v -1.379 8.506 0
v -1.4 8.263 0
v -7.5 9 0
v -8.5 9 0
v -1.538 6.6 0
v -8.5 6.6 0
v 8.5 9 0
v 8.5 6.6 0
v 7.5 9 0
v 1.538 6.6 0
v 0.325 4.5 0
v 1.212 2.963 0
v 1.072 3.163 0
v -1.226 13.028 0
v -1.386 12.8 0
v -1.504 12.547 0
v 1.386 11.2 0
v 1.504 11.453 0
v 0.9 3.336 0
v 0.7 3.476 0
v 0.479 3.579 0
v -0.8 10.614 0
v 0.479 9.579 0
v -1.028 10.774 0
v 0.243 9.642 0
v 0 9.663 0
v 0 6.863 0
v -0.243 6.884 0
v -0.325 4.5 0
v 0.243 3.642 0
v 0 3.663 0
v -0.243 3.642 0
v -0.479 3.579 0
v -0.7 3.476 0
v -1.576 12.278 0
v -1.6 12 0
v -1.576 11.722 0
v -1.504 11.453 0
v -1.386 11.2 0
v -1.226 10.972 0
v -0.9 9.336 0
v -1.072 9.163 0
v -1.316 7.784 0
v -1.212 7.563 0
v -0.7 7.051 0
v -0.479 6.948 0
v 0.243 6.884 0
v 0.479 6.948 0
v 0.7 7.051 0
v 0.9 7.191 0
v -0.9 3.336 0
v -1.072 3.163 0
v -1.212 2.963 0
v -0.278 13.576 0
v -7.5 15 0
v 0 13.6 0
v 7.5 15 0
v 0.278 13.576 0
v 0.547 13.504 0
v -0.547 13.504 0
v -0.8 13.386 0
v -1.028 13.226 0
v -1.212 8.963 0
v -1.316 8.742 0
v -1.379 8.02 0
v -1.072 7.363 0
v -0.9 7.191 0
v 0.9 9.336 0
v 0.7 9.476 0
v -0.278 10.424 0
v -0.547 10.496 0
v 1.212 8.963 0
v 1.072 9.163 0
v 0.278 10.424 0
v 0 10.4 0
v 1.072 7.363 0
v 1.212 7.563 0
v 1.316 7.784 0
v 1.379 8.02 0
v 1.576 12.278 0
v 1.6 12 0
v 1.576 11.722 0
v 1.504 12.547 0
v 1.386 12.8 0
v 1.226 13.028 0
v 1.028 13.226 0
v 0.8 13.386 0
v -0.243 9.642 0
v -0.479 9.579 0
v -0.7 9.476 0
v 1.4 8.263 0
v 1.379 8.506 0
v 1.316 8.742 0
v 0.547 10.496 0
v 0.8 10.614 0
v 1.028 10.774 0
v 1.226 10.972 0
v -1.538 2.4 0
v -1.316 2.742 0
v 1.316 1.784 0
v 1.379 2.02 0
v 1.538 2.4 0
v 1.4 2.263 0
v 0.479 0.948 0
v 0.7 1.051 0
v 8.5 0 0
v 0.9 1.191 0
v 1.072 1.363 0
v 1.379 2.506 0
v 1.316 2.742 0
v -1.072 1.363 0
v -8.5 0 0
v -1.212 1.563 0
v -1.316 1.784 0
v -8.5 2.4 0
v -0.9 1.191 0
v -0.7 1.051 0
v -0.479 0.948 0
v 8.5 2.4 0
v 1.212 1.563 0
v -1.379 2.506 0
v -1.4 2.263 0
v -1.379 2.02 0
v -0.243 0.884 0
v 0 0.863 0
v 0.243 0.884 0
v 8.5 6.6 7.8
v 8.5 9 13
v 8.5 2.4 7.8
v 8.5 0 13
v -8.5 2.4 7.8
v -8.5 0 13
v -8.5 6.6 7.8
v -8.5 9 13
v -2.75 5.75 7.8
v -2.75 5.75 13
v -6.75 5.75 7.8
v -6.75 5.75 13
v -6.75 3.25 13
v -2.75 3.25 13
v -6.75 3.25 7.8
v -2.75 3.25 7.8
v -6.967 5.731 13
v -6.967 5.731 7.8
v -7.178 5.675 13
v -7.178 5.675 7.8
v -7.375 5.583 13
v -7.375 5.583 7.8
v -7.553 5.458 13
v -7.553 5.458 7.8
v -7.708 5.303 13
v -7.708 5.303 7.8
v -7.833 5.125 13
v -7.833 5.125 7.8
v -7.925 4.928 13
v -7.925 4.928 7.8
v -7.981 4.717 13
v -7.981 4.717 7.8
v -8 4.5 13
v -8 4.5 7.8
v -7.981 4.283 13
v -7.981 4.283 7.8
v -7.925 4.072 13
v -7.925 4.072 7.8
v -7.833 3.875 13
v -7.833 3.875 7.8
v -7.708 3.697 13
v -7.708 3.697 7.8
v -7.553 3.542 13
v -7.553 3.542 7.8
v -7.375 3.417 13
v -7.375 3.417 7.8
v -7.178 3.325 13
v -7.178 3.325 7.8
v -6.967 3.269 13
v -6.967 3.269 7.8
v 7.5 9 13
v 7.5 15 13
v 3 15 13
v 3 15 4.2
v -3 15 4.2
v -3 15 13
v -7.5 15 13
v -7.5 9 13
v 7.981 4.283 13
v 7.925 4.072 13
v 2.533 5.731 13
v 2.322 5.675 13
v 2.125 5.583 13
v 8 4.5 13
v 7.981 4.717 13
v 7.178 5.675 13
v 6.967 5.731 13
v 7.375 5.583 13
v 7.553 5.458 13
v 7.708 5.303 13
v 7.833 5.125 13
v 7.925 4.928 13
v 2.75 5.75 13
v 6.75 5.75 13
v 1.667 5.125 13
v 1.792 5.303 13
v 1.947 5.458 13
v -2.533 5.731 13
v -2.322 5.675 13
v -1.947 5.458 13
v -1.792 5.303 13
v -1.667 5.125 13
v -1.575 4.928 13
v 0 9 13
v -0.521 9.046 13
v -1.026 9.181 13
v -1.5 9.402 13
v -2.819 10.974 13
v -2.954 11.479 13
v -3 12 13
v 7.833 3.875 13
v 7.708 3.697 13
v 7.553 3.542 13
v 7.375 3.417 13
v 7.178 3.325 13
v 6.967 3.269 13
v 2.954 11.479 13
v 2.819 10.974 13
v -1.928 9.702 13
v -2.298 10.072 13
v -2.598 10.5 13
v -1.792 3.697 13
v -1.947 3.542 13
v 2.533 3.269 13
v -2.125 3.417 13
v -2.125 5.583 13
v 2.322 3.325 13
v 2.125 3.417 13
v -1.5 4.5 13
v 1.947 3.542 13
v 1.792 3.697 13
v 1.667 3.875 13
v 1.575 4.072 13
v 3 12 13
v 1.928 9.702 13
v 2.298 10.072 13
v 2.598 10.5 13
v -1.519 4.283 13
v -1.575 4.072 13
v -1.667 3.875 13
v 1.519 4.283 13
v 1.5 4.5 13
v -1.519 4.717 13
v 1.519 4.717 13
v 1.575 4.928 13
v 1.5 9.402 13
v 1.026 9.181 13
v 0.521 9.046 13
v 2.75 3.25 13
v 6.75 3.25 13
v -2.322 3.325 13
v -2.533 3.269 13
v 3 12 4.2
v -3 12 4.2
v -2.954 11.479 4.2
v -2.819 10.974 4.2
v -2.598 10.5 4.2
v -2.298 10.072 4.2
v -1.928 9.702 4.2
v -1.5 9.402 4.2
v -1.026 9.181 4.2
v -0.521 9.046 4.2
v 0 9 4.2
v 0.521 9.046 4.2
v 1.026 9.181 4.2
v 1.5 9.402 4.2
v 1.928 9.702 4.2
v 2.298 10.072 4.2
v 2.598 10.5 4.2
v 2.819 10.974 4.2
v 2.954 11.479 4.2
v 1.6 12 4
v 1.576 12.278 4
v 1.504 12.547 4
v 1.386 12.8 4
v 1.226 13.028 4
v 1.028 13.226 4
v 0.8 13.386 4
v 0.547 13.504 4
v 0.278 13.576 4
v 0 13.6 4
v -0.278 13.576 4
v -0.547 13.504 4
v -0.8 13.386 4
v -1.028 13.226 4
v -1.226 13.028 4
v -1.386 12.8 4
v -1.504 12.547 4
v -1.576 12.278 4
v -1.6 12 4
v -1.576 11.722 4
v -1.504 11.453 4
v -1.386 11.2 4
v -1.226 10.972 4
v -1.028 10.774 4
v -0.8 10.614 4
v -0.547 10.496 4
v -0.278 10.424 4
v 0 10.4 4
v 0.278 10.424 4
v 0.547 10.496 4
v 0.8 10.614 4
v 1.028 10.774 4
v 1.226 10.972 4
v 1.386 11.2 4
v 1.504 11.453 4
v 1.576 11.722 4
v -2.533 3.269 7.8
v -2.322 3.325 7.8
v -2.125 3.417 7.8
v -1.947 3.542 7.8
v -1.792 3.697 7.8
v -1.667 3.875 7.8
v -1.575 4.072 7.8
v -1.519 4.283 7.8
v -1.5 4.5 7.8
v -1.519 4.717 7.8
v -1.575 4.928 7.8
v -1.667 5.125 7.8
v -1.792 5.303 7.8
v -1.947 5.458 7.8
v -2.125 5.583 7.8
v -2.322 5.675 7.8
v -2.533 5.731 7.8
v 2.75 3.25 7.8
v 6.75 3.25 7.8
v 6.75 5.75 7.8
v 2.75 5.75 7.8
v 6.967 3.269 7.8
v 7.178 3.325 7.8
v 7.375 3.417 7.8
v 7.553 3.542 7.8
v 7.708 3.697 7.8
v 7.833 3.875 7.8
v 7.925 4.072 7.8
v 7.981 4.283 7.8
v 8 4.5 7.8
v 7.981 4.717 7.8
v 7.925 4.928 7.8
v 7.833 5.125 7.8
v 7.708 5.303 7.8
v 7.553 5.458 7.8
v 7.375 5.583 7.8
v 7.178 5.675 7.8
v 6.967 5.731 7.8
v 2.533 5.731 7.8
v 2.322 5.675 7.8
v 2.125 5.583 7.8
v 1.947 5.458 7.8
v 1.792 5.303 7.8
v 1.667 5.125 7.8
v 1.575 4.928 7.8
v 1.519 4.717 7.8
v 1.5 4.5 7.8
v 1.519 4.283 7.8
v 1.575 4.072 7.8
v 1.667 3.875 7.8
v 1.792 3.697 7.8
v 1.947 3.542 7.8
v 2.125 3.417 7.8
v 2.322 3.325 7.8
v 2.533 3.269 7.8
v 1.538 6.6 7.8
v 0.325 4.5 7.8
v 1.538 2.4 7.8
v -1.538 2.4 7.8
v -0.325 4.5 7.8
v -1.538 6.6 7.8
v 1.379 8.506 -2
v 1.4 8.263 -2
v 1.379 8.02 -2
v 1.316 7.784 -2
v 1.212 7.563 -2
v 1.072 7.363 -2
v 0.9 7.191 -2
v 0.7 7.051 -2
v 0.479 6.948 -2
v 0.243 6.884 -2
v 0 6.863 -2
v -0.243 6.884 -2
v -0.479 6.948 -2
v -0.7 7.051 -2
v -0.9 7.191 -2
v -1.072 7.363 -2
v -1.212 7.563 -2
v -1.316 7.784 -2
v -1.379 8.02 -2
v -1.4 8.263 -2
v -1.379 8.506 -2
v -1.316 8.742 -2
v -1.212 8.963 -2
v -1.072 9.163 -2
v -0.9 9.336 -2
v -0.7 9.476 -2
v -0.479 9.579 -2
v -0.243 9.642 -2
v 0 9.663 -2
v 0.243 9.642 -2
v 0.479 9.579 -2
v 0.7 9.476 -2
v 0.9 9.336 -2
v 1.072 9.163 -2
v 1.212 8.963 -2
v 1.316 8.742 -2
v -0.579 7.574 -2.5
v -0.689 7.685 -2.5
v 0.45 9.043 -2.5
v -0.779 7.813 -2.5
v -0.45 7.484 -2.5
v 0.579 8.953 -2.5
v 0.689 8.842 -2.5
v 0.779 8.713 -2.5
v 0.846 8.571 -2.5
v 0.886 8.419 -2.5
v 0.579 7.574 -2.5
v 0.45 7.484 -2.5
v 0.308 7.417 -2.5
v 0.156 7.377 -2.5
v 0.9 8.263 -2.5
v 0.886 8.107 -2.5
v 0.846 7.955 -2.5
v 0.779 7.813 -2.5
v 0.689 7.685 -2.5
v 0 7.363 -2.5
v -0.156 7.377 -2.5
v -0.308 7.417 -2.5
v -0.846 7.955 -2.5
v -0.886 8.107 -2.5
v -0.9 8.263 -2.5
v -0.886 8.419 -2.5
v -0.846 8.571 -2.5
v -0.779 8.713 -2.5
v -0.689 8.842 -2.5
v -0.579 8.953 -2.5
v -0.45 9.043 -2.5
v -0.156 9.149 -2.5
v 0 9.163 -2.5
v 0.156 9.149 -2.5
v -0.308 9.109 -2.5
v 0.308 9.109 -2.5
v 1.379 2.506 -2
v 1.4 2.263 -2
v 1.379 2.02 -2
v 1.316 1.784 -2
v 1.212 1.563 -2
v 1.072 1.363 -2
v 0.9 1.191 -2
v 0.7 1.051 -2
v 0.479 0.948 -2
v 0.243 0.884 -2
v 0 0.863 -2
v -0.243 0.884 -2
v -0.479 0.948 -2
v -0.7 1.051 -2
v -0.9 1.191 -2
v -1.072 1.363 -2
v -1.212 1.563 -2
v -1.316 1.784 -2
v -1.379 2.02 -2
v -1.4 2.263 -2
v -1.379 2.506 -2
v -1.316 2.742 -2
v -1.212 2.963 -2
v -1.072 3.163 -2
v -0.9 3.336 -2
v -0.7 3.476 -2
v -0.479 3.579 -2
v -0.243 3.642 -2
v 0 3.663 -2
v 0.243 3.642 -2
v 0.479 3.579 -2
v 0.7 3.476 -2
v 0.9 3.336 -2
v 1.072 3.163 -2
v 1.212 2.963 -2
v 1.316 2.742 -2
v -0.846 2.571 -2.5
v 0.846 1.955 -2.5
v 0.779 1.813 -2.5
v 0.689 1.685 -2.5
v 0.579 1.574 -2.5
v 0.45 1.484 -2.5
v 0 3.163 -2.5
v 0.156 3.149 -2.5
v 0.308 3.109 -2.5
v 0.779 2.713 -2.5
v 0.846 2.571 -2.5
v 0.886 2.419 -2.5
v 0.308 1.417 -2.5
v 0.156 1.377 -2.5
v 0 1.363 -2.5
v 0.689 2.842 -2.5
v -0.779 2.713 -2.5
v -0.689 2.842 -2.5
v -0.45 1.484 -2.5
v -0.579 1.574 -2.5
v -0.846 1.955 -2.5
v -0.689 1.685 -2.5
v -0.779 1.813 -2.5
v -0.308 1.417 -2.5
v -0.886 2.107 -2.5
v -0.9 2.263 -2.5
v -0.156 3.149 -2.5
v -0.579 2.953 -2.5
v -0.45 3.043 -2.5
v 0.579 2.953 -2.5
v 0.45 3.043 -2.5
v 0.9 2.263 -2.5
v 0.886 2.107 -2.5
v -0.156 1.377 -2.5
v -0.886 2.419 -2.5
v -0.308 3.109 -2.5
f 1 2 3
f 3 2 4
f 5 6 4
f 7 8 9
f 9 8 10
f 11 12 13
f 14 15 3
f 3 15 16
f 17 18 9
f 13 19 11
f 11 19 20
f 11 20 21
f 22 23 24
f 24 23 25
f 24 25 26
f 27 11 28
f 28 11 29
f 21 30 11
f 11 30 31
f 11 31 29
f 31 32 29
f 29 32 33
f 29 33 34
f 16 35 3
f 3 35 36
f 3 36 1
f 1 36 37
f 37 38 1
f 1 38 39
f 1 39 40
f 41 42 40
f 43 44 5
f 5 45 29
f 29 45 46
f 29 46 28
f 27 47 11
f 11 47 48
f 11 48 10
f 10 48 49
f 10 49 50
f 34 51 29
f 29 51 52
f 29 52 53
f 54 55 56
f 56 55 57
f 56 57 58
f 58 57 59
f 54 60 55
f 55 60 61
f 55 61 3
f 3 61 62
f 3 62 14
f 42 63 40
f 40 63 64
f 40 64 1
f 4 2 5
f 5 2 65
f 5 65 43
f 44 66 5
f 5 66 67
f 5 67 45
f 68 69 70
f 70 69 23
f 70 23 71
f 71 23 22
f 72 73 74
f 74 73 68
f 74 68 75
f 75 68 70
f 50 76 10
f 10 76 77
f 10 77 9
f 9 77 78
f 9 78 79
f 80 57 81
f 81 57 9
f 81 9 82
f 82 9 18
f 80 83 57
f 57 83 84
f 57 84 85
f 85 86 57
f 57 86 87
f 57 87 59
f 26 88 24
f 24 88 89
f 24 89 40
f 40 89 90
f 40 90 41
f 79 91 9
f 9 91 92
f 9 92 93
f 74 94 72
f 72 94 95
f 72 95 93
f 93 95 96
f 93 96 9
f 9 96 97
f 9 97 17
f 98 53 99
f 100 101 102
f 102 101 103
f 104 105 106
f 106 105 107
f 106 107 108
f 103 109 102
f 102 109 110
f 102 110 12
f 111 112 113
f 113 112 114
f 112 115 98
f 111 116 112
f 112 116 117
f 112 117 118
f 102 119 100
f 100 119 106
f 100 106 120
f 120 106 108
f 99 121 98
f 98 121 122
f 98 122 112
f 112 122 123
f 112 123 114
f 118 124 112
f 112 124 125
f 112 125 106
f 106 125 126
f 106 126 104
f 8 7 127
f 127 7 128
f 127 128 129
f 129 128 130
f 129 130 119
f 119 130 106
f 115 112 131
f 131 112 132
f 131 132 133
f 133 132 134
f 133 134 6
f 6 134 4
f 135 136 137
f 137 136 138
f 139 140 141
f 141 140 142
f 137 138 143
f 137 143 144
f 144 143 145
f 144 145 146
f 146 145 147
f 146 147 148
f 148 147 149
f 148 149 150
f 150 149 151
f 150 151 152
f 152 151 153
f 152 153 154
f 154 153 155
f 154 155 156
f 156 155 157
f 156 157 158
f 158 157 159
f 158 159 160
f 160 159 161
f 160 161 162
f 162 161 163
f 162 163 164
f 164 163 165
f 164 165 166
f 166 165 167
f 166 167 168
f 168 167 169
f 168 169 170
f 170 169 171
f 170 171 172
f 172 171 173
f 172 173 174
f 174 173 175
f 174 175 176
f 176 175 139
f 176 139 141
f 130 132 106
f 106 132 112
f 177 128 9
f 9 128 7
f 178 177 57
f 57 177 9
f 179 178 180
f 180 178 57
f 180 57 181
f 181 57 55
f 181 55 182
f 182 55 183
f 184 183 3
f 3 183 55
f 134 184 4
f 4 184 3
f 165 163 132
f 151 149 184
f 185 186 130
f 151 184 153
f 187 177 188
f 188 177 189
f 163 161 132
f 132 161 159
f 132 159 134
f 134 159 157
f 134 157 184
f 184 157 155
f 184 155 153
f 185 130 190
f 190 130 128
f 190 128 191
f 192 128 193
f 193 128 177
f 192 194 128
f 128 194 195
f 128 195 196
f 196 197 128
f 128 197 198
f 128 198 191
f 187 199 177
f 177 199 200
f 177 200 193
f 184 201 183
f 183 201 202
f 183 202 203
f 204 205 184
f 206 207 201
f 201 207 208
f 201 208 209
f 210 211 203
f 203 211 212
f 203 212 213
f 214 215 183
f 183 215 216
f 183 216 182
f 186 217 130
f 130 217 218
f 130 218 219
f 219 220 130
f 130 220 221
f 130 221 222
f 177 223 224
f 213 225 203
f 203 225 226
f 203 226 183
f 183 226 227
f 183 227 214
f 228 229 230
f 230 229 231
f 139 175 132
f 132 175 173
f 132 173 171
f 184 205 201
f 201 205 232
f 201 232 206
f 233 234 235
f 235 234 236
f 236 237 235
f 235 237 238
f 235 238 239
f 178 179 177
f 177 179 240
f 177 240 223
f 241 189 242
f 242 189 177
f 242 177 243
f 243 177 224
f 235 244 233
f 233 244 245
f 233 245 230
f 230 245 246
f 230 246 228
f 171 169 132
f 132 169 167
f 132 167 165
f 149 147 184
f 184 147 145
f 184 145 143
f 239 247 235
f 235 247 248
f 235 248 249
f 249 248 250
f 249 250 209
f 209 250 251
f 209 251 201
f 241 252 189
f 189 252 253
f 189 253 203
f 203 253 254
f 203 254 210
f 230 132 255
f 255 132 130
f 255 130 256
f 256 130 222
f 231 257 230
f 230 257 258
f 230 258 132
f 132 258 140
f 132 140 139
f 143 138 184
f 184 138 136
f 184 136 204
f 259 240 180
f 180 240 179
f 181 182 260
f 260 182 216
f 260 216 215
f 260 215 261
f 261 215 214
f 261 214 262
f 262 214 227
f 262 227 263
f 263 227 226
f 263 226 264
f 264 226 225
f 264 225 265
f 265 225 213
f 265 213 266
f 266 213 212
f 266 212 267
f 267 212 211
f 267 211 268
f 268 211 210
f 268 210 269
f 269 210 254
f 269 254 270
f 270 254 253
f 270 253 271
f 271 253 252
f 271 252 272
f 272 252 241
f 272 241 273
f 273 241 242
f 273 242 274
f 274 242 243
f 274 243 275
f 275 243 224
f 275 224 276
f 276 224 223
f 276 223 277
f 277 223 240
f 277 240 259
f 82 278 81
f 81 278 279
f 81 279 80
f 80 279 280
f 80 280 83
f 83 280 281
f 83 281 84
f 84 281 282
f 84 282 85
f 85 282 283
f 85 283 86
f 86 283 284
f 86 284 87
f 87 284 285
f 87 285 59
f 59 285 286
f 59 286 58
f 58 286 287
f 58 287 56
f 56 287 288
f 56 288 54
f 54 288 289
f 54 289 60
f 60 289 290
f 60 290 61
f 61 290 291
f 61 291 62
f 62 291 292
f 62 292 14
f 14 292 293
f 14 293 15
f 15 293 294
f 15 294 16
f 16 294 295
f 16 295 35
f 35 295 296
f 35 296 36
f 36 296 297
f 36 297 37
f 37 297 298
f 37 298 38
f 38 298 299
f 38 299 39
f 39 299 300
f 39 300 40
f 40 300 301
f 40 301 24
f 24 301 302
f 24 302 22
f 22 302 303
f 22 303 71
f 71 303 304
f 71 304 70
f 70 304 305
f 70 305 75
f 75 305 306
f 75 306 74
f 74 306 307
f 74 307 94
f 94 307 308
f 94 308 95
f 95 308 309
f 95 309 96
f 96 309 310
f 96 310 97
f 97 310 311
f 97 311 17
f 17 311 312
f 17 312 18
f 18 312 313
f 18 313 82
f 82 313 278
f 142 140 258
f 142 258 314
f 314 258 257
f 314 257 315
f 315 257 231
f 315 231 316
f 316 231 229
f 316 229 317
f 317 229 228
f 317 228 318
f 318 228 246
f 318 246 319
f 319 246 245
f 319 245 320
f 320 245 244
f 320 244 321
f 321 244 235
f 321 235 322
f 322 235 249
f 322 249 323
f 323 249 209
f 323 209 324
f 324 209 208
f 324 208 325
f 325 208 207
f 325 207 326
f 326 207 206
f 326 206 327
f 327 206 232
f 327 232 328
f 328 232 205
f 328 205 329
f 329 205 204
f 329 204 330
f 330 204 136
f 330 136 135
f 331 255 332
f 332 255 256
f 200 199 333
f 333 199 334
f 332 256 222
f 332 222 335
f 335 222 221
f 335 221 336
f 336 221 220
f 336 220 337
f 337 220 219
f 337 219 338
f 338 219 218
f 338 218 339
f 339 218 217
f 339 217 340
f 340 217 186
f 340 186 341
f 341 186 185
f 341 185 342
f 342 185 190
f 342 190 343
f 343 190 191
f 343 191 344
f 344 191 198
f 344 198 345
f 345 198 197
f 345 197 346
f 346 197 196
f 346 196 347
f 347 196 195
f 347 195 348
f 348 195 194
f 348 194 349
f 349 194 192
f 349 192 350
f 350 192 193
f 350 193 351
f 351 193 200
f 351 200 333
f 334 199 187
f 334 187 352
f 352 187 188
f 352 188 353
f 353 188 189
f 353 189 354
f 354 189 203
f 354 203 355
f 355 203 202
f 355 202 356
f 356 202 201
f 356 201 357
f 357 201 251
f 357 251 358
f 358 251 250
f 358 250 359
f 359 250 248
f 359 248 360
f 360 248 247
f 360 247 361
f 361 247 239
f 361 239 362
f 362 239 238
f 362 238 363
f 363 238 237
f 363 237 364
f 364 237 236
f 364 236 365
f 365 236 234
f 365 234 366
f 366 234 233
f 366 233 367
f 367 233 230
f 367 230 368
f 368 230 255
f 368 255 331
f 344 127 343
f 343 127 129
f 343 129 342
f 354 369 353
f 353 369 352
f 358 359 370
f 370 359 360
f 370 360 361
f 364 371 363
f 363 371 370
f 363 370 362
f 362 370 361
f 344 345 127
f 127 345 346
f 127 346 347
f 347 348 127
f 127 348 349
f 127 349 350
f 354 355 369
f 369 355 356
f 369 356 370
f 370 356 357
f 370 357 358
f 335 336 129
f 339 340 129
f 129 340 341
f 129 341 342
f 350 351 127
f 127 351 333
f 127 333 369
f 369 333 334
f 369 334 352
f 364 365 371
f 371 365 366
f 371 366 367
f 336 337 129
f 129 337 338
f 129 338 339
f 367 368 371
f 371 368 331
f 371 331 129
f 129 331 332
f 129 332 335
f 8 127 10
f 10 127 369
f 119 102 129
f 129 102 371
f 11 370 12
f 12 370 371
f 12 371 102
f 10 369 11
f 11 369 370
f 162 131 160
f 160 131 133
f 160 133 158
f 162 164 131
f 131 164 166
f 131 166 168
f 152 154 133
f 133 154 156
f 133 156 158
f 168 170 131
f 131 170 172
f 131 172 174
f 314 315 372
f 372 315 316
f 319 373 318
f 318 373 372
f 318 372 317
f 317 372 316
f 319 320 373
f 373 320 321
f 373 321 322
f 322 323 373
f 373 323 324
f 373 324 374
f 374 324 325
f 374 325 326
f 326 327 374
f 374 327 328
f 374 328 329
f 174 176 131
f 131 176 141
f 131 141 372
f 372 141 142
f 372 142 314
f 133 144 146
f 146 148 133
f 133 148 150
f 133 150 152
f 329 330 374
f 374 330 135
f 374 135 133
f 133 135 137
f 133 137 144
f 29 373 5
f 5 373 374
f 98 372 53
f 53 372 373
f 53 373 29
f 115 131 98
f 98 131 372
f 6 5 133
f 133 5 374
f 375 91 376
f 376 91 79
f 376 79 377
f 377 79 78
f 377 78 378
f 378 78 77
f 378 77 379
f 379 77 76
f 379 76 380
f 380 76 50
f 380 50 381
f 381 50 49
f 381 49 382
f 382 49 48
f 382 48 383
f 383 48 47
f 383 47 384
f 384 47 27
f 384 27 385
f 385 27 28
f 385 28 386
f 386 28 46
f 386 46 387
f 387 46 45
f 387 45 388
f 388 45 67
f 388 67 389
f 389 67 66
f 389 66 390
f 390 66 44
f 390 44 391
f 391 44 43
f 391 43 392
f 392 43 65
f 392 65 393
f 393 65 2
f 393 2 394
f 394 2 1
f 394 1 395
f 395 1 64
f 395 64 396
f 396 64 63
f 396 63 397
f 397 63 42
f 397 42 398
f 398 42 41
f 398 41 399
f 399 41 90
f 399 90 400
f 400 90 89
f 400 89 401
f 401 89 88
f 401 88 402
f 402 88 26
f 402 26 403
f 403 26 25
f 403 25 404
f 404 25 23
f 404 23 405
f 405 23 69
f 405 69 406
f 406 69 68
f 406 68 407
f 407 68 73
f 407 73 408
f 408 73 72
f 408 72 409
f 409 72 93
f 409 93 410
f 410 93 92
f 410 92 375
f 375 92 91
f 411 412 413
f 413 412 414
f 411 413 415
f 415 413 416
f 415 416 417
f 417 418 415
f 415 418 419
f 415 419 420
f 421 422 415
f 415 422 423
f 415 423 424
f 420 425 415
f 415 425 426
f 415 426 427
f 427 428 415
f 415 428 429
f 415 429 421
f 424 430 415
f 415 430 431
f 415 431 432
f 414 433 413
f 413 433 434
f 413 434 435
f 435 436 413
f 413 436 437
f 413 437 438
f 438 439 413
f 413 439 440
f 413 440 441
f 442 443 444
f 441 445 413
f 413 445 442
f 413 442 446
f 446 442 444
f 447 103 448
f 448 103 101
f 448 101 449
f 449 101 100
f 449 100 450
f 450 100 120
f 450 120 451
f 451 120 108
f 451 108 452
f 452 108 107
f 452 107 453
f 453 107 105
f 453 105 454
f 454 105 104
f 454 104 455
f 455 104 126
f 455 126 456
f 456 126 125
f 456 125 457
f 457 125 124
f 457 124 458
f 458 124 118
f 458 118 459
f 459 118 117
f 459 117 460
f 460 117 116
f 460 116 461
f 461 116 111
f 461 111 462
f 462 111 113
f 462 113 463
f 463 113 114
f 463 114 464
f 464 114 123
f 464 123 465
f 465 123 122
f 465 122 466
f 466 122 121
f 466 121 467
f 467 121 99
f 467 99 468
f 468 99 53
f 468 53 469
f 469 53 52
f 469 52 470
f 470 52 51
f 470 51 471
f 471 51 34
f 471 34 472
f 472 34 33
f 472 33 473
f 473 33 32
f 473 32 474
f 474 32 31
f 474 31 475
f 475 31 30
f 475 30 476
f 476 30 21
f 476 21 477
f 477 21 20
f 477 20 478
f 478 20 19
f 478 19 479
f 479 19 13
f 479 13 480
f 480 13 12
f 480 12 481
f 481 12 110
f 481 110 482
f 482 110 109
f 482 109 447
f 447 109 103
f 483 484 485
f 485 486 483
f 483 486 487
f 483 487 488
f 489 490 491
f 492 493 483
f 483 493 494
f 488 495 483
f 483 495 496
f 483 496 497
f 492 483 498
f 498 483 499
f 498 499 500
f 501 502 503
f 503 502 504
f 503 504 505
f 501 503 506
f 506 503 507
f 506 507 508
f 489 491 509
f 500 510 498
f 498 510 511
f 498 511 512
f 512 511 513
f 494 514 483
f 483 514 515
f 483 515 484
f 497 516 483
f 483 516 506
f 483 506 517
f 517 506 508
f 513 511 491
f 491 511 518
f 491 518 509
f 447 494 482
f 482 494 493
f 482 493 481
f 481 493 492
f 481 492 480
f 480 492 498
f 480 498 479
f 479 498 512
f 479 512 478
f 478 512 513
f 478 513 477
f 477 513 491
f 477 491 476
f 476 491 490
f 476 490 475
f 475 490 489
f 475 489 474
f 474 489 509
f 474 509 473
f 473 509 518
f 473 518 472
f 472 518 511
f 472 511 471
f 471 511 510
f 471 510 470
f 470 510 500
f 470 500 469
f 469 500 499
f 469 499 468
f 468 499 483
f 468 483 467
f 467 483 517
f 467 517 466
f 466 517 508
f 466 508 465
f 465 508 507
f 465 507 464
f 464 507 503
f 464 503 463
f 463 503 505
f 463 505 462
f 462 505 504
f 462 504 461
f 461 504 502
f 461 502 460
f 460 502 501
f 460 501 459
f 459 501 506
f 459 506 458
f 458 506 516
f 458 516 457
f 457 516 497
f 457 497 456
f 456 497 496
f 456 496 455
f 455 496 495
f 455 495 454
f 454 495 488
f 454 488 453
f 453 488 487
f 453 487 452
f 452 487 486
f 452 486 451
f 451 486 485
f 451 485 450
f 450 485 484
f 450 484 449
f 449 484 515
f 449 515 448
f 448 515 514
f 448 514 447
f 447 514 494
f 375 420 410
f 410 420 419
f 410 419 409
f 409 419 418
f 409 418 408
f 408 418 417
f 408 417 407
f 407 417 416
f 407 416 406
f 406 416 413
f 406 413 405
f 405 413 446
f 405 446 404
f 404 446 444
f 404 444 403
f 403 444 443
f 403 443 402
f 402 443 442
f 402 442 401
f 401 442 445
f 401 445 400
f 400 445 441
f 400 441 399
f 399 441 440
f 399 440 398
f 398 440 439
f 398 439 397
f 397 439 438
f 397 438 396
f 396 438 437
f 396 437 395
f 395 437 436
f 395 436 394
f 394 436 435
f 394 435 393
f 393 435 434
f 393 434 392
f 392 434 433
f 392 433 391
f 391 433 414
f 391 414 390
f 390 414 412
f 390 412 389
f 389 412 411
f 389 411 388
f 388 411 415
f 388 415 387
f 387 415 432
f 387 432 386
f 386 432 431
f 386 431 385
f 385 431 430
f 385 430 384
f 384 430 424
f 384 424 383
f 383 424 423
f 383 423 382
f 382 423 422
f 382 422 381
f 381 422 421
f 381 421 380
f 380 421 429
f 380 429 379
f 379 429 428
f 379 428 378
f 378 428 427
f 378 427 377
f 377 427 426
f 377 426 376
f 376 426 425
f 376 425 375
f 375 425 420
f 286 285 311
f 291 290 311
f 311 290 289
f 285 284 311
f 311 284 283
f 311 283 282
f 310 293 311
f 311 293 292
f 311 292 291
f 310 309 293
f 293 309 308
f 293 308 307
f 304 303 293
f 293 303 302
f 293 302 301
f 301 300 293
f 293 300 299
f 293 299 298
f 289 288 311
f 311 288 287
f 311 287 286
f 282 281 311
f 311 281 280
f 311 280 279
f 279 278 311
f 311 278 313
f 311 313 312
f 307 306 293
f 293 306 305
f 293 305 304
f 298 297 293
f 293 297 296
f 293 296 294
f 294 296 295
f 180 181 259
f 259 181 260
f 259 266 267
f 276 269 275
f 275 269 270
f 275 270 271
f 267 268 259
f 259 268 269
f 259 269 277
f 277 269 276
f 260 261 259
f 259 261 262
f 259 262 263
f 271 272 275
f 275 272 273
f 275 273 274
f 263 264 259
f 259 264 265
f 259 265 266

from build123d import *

# Parameters (mm, degrees)
BOSS_EXTRUDE1_DEPTH = 13
CUT_EXTRUDE1_DEPTH  = 9
SKETCH4_R           = 1.6
CUT_EXTRUDE2_DEPTH  = 20.448650339
SKETCH5_R           = 1.25
CUT_EXTRUDE3_DEPTH  = 22.592822882
CUT_EXTRUDE4_DEPTH  = 22.592822882
CUT_EXTRUDE5_DEPTH  = 7.8
SKETCH9_W           = 6.962435565
SKETCH9_H           = 4.2
CUT_EXTRUDE6_DEPTH  = 7.8
SKETCH10_R          = 1.4
BOSS_EXTRUDE2_DEPTH = 2.5
CHAMFER1_SIZE       = 0.5
BOSS_EXTRUDE3_START = 0.2
BOSS_EXTRUDE3_DEPTH = 0.2


with BuildPart() as part:
    # Sketch1 → Boss-Extrude1 (new body)
    with BuildSketch(Plane.XY):
        Polygon((-8.5, 0), (8.5, 0), (8.5, 9), (7.5, 9), (7.5, 15), (-7.5, 15), (-7.5, 9), (-8.5, 9), align=None)
    extrude(amount=BOSS_EXTRUDE1_DEPTH)

    # Sketch2 → Cut-Extrude1 (cut)
    with BuildSketch(Plane.XY.offset(13)):
        with BuildLine():
            Line((3, 18), (3, 12))
            ThreePointArc((3, 12), (0, 9), (-3, 12))
            Line((-3, 12), (-3, 18))
            ThreePointArc((-3, 18), (0, 21), (3, 18))
        make_face()
    extrude(amount=-CUT_EXTRUDE1_DEPTH, mode=Mode.SUBTRACT)

    # Sketch4 → Cut-Extrude2 (cut, through all)
    with BuildSketch(Plane.XY.offset(4)):
        with Locations((0, 12)):
            Circle(SKETCH4_R)
    extrude(amount=-CUT_EXTRUDE2_DEPTH, mode=Mode.SUBTRACT)

    # Sketch5 → Cut-Extrude3 (cut, through all)
    with BuildSketch(Plane.XY.offset(13)):
        with Locations((-4.75, 4.5)):
            Circle(SKETCH5_R)
        with Locations((4.75, 4.5)):
            Circle(SKETCH5_R)
    extrude(amount=-CUT_EXTRUDE3_DEPTH, mode=Mode.SUBTRACT)

    # Sketch7 → Cut-Extrude4 (cut, through all)
    with BuildSketch(Plane.XY.offset(13)):
        with BuildLine():
            Line((-6.75, 5.75), (-2.75, 5.75))
            ThreePointArc((-2.75, 5.75), (-1.5, 4.5), (-2.75, 3.25))
            Line((-2.75, 3.25), (-6.75, 3.25))
            ThreePointArc((-6.75, 3.25), (-8, 4.5), (-6.75, 5.75))
        make_face()
        with BuildLine():
            Line((6.75, 3.25), (2.75, 3.25))
            ThreePointArc((2.75, 3.25), (1.5, 4.5), (2.75, 5.75))
            Line((2.75, 5.75), (6.75, 5.75))
            ThreePointArc((6.75, 5.75), (8, 4.5), (6.75, 3.25))
        make_face()
    extrude(amount=-CUT_EXTRUDE4_DEPTH, mode=Mode.SUBTRACT)

    # Sketch8 → Cut-Extrude5 (cut)
    with BuildSketch(Plane(origin=(0, 0, 0), x_dir=(-1, 0, 0), z_dir=(0, 0, -1))):
        Polygon((-1.537564435, 6.6), (-3.962435565, 6.6), (-5.174871131, 4.5), (-3.962435565, 2.4), (-1.537564435, 2.4), (-0.325128869, 4.5), align=None)
        Polygon((1.537564435, 6.6), (0.325128869, 4.5), (1.537564435, 2.4), (3.962435565, 2.4), (5.174871131, 4.5), (3.962435565, 6.6), align=None)
    extrude(amount=-CUT_EXTRUDE5_DEPTH, mode=Mode.SUBTRACT)

    # Sketch9 → Cut-Extrude6 (cut)
    with BuildSketch(Plane(origin=(0, 0, 7.8), x_dir=(-1, 0, 0), z_dir=(0, 0, -1))):
        with Locations((5.018782218, 4.5)):
            Rectangle(SKETCH9_W, SKETCH9_H)
        with Locations((-5.018782218, 4.5)):
            Rectangle(SKETCH9_W, SKETCH9_H)
    extrude(amount=CUT_EXTRUDE6_DEPTH, mode=Mode.SUBTRACT)

    # Sketch10 → Boss-Extrude2 (add)
    with BuildSketch(Plane(origin=(0, 0, 0), x_dir=(-1, 0, 0), z_dir=(0, 0, -1))):
        with Locations(Location((0, 8.263139721, 0), (0, 0, 180))):
            Circle(SKETCH10_R)
        with Locations(Location((0, 2.263139721, 0), (0, 0, 150))):
            Circle(SKETCH10_R)
    extrude(amount=BOSS_EXTRUDE2_DEPTH)

    # Chamfer1
    chamfer1_edges = [part.edges().sort_by_distance(p)[0] for p in [
        (-1.4, 8.263139721, -2.5),
        (-1.212435565, 1.563139721, -2.5),
    ]]
    chamfer(chamfer1_edges, length=CHAMFER1_SIZE)

    # Sketch11 → Boss-Extrude3 (add)
    with BuildSketch(Plane.XY.offset(4).offset(BOSS_EXTRUDE3_START)):
        with BuildLine():
            Line((3, 15), (-3, 15))
            Line((-3, 15), (-3, 12))
            ThreePointArc((-3, 12), (0, 9), (3, 12))
            Line((3, 12), (3, 15))
        make_face()
    extrude(amount=-BOSS_EXTRUDE3_DEPTH)


solid = part.part
